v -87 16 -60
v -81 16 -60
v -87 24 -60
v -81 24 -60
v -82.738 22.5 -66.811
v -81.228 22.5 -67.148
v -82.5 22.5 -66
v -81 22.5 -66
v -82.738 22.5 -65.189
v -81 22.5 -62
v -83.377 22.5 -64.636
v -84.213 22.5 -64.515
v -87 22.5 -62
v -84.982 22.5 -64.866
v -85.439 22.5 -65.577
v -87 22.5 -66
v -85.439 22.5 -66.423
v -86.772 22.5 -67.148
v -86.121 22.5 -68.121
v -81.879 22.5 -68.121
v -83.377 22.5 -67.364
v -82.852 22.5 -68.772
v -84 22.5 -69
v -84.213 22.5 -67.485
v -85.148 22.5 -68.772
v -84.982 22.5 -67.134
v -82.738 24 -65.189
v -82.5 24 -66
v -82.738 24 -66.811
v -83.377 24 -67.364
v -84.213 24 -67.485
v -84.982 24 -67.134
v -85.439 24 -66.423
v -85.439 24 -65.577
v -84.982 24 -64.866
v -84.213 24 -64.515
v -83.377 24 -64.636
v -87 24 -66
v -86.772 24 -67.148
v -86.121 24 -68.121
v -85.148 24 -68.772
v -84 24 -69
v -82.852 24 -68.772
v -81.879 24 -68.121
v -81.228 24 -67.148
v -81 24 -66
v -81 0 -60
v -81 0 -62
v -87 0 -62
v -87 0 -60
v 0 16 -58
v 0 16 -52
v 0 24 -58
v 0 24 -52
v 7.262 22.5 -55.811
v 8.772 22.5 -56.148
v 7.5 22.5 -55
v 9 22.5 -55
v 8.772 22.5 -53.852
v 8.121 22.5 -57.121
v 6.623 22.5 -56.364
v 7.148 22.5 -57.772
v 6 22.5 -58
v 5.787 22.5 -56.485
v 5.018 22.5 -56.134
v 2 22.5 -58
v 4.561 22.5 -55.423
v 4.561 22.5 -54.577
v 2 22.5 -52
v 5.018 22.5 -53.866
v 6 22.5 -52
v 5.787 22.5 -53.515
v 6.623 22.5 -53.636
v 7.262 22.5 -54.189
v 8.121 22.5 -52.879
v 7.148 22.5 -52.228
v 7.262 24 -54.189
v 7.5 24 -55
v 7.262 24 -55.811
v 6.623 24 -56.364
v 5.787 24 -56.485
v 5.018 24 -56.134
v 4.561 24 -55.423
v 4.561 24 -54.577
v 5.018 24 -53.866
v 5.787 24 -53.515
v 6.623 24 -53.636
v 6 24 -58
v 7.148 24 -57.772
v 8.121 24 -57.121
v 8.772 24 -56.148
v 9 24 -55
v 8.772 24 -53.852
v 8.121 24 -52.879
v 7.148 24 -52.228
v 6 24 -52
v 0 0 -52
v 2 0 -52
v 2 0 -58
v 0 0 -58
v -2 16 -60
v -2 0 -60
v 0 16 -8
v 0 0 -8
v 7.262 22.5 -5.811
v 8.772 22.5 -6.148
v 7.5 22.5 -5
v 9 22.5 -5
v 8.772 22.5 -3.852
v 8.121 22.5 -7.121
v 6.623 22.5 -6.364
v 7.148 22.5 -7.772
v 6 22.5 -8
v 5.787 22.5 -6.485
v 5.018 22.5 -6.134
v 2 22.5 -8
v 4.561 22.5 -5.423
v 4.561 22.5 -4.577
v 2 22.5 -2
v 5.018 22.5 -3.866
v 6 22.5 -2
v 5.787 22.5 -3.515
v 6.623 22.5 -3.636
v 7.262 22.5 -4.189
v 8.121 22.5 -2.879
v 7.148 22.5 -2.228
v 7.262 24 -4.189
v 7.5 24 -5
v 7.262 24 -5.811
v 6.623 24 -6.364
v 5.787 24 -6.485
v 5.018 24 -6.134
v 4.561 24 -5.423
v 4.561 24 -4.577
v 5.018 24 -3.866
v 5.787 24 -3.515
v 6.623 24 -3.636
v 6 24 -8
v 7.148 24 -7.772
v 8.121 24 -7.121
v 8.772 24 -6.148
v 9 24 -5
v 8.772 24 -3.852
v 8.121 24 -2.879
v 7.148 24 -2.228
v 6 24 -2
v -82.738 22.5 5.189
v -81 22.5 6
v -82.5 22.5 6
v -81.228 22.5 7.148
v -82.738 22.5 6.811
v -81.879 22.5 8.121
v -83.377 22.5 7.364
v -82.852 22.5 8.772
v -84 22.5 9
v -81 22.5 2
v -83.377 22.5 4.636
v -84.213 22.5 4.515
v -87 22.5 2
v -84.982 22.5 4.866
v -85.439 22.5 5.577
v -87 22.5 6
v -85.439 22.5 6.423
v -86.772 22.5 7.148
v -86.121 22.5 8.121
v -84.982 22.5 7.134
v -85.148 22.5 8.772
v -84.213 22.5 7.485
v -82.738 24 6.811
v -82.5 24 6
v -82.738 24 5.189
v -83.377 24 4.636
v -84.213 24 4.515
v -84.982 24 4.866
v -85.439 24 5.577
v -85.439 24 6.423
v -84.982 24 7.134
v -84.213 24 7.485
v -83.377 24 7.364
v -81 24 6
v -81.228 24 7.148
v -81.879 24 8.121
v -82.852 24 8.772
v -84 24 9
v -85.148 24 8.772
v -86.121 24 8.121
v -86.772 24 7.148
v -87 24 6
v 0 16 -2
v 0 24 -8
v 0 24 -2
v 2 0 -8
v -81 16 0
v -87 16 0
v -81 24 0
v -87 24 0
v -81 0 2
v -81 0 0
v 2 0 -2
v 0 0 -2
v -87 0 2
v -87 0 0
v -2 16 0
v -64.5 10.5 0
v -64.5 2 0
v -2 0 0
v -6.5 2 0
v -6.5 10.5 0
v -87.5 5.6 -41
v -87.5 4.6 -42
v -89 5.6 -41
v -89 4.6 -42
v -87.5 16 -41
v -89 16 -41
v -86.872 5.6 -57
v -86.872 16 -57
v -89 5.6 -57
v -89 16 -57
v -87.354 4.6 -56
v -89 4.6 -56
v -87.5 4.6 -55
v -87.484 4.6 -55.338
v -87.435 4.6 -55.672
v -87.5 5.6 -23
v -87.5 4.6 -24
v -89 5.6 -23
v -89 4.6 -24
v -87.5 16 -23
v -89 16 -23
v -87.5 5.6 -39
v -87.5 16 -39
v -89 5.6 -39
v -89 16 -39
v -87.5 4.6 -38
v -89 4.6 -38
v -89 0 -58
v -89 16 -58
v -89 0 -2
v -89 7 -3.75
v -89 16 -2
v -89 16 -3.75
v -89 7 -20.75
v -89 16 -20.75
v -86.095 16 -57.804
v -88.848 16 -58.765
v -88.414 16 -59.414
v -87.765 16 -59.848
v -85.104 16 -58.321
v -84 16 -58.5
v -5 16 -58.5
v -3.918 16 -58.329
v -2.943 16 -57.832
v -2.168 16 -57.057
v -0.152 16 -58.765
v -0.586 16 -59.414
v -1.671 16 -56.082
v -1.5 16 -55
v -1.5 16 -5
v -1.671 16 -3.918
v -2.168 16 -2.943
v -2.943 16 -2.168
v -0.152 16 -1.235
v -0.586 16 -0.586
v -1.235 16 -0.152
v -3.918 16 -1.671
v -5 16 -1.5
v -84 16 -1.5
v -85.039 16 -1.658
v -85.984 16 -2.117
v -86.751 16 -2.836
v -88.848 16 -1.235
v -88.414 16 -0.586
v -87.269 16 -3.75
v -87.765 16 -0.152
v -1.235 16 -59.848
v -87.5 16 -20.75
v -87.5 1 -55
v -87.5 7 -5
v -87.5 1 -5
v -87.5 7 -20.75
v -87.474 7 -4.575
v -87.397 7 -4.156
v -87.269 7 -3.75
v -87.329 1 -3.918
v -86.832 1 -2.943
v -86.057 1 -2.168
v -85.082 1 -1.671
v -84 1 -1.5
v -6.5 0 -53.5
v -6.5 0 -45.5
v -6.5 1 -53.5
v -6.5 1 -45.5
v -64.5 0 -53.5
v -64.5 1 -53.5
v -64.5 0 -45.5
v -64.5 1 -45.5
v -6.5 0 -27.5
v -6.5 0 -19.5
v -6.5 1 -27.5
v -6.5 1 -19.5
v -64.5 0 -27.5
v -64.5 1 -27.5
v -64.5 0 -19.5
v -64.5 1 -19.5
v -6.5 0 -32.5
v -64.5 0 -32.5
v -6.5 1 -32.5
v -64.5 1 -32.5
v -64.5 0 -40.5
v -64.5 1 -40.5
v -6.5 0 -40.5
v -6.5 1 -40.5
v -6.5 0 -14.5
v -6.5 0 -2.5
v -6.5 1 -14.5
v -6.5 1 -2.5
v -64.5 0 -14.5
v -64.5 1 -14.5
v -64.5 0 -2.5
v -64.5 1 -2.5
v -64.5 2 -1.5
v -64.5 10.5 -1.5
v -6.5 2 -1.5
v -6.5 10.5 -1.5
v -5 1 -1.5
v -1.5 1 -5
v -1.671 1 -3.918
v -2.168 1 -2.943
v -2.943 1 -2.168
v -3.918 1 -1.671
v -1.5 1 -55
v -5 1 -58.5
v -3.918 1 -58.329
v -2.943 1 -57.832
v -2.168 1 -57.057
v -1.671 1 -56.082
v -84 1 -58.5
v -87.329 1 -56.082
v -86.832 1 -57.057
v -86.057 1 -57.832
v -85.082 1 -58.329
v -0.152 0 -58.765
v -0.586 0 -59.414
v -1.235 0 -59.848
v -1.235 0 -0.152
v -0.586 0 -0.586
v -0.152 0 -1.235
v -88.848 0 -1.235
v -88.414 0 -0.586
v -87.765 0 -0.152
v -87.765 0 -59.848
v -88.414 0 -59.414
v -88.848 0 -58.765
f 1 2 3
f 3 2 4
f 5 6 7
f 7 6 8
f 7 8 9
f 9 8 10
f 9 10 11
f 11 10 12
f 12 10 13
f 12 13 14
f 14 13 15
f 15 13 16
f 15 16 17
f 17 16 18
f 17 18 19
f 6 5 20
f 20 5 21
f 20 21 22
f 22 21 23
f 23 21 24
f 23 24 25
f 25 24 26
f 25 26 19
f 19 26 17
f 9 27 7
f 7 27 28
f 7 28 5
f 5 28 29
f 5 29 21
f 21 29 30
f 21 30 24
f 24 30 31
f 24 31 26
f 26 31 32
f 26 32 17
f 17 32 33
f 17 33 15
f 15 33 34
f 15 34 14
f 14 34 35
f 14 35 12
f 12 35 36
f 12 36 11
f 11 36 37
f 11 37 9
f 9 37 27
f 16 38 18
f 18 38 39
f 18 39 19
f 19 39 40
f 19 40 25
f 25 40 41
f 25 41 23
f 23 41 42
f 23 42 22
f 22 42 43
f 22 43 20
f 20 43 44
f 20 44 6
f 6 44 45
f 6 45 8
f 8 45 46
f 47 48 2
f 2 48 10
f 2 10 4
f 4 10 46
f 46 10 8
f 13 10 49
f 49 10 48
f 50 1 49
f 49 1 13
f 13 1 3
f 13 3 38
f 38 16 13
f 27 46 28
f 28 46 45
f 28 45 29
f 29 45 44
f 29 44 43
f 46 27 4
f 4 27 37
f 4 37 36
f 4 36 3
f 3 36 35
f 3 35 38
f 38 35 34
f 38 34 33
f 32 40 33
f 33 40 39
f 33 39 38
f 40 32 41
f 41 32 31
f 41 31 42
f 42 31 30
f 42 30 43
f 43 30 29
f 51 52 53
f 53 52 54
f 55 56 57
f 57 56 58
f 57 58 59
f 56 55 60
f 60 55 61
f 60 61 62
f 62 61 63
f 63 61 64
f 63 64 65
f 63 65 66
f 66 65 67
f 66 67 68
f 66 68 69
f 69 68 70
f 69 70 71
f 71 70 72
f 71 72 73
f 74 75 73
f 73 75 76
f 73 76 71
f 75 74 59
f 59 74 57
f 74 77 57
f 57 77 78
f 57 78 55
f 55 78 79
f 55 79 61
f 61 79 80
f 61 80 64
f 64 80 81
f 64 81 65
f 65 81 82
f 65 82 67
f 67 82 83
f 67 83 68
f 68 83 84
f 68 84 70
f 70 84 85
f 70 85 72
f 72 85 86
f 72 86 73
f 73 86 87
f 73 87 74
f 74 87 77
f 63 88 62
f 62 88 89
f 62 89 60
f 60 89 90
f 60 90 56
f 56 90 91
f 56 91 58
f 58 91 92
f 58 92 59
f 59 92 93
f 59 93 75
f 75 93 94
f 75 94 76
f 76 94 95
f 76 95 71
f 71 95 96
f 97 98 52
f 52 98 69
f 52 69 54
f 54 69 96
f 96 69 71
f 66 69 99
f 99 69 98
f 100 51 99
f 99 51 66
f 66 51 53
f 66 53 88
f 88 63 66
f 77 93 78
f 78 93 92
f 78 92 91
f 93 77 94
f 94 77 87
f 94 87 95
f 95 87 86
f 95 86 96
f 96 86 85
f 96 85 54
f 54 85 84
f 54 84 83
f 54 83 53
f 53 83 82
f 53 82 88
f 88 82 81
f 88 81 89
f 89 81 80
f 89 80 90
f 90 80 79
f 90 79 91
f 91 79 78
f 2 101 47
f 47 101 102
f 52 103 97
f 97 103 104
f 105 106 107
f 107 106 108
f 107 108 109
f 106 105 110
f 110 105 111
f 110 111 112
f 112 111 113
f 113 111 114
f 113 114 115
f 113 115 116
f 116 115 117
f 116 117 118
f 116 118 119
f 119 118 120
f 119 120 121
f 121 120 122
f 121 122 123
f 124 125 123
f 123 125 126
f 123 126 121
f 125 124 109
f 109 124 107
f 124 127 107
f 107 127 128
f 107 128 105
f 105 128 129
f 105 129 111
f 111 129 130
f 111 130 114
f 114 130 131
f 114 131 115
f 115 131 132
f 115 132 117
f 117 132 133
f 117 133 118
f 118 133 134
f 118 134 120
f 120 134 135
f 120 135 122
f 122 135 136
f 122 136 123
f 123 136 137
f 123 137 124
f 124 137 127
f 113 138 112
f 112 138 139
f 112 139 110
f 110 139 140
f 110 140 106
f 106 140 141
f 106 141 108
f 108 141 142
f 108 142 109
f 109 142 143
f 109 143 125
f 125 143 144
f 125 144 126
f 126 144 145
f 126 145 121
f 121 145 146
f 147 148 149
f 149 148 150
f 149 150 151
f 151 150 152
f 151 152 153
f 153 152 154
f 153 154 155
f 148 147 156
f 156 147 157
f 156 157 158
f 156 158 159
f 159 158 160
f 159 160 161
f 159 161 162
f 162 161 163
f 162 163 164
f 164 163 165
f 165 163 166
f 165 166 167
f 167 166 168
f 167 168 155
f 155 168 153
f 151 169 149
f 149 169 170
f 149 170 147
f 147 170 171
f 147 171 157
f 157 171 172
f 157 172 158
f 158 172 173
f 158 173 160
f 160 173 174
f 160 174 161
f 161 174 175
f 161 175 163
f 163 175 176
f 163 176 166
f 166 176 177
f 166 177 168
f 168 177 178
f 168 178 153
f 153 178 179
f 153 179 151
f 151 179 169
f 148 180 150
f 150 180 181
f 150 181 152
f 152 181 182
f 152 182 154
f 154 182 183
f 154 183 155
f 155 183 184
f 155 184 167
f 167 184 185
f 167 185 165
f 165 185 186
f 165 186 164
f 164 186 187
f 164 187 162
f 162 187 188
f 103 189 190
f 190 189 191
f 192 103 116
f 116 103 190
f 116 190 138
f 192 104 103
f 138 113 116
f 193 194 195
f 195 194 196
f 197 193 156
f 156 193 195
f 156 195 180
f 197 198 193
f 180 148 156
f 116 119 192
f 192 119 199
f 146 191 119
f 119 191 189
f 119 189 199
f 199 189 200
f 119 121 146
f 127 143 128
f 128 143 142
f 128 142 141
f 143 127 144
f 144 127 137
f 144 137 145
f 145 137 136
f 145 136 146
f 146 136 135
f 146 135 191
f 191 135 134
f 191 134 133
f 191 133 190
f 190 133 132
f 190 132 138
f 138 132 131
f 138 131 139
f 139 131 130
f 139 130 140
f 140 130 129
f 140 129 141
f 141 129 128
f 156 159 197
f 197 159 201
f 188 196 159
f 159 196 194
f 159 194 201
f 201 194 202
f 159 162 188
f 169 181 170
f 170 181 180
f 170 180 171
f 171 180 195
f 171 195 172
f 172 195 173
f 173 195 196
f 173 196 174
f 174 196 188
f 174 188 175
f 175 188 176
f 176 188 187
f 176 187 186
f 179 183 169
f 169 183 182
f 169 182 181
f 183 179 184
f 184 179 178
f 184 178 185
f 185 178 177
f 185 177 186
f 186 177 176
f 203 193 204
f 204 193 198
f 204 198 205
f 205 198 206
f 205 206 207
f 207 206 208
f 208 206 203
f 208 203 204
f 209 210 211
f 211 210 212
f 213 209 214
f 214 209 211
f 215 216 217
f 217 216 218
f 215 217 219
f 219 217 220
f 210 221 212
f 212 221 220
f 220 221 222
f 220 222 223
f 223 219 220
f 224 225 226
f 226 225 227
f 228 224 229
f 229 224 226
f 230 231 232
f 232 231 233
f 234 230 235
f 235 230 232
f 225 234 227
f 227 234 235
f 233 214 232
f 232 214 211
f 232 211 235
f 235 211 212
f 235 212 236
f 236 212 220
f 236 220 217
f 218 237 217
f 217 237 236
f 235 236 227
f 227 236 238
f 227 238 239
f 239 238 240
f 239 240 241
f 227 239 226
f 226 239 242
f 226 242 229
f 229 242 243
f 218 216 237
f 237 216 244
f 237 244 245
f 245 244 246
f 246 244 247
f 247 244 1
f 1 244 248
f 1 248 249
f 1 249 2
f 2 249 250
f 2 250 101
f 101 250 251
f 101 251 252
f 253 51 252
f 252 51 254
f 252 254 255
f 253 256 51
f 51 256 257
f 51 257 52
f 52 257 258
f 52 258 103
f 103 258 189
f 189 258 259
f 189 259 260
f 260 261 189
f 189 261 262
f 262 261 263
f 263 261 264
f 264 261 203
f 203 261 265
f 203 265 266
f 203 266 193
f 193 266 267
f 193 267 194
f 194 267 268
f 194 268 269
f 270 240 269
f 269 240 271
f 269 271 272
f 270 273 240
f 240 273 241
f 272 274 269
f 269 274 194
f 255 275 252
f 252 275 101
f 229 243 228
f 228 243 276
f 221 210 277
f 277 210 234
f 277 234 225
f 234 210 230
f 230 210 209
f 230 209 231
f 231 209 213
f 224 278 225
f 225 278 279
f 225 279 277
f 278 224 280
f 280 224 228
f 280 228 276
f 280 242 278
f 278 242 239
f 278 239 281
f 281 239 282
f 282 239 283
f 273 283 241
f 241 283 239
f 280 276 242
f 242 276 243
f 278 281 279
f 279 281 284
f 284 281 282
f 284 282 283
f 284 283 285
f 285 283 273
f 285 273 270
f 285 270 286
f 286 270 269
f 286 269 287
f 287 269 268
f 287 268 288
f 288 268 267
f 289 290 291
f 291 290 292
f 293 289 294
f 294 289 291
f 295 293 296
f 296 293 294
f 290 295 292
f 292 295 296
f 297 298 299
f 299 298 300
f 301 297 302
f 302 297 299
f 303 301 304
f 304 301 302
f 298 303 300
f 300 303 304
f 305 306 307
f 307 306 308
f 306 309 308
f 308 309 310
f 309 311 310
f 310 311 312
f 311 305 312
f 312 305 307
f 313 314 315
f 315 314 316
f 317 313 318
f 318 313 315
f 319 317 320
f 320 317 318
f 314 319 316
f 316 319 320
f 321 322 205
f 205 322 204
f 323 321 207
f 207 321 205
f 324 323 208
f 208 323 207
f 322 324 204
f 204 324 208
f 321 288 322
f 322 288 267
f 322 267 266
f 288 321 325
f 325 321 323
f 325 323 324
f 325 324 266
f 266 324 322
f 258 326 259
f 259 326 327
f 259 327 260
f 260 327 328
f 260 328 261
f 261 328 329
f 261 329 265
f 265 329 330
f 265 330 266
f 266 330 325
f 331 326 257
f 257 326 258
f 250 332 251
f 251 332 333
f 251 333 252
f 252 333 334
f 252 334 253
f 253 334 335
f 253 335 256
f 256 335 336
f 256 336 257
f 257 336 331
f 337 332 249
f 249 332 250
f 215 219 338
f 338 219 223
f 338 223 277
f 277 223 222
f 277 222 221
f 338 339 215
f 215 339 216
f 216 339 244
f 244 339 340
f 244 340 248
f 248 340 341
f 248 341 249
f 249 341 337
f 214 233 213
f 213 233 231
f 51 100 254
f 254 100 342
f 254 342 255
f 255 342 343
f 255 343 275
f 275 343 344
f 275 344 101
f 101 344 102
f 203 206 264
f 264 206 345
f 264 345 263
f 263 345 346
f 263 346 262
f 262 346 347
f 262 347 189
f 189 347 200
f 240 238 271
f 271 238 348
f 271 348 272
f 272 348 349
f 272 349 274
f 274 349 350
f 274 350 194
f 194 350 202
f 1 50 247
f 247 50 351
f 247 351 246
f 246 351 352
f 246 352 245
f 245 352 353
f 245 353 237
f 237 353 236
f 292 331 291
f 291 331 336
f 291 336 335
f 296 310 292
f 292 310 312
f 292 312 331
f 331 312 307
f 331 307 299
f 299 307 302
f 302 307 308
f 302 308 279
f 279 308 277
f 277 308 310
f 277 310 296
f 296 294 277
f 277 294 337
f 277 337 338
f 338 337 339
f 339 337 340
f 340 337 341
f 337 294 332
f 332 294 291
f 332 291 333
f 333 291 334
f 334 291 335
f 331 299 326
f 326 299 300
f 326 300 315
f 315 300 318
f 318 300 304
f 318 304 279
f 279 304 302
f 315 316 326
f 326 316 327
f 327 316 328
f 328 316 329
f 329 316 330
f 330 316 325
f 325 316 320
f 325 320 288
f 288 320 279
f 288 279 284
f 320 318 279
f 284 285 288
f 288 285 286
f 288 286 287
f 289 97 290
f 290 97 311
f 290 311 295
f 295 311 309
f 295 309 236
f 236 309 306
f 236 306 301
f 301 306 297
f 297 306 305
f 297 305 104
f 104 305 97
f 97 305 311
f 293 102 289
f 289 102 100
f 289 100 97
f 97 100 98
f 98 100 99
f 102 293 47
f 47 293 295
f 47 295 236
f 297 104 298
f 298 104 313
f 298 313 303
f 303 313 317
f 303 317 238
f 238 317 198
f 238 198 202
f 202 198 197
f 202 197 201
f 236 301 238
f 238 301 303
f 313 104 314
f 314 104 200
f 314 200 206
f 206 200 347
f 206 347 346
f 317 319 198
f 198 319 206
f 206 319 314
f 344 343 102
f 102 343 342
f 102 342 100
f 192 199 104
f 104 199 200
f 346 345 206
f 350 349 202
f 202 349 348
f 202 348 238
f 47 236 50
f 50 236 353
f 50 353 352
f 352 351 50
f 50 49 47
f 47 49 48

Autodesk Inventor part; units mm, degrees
ref_plane "YZ Plane" through (0, 0, 0) normal (1, 0, 0) x (0, 1, 0)
ref_plane "XZ Plane" through (0, 0, 0) normal (0, 1, 0) x (-1, 0, 0)
sketch "Sketch1" plane through (0, 0, 0) normal (0, 1, 0) x (-1, 0, 0)
  line L0 (2, 0) -> (87, 0)
  line L1 (89, -2) -> (89, -58)
  line L2 (87, -60) -> (2, -60)
  line L3 (0, -58) -> (0, -2)
  arc A0 (2, 0) -> (0, -2) centre (2, -2) ccw
  arc A1 (0, -58) -> (2, -60) centre (2, -58) ccw
  arc A2 (87, -60) -> (89, -58) centre (87, -58) ccw
  arc A3 (89, -2) -> (87, 0) centre (87, -2) ccw
  point P0 (0, 0)
  point P1 (89, -60)
  point P2 (0, -60)
  dimension "d0" = 60
  dimension "d1" = 89
  dimension "d2" = 2
extrude "Extrusion1" add sketch "Sketch1" along normal blind 1
sketch "Sketch2" plane through (0, 1, 0) normal (0, 1, 0) x (1, 0, 0)
  line L0 (-87, 0) -> (-2, 0)
  line L1 (0, 2) -> (0, 58)
  line L2 (-2, 60) -> (-87, 60)
  line L3 (-89, 58) -> (-89, 2)
  line L4 (-89, 58) -> (-89, 2) projected
  line L5 (-87, 0) -> (-2, 0) projected
  line L6 (0, 2) -> (0, 58) projected
  line L7 (-2, 60) -> (-87, 60) projected
  arc A0 (-89, 2) -> (-87, 0) centre (-87, 2) ccw
  arc A1 (-87, 60) -> (-89, 58) centre (-87, 58) ccw
  arc A2 (0, 58) -> (-2, 60) centre (-2, 58) ccw
  arc A3 (-2, 0) -> (0, 2) centre (-2, 2) ccw
  line L8 (-84, 1.5) -> (-5, 1.5)
  line L9 (-1.5, 5) -> (-1.5, 55)
  line L10 (-5, 58.5) -> (-84, 58.5)
  line L11 (-87.5, 55) -> (-87.5, 5)
  arc A4 (-5, 1.5) -> (-1.5, 5) centre (-5, 5) ccw
  arc A5 (-1.5, 55) -> (-5, 58.5) centre (-5, 55) ccw
  arc A6 (-84, 58.5) -> (-87.5, 55) centre (-84, 55) ccw
  arc A7 (-87.5, 5) -> (-84, 1.5) centre (-84, 5) ccw
  point P0 (0, 0)
  dimension "d5" = 2
  dimension "d6" = 1.5
  dimension "d7" = 1.5
  dimension "d8" = 1.5
  dimension "d9" = 1.5
  dimension "d10" = 3.5
extrude "Extrusion2" add sketch "Sketch2" along normal blind 15
sketch "Sketch3" plane through (-87, 0, 0) normal (0, 0, 1) x (1, 0, 0)
  line L0 (22.5, 10.5) -> (80.5, 10.5)
  line L1 (80.5, 10.5) -> (80.5, 2)
  line L2 (80.5, 2) -> (22.5, 2)
  line L3 (22.5, 2) -> (22.5, 10.5)
  line L4 (87, 0) -> (87, 16) projected
  line L5 (0, 0) -> (85, 0) projected
  dimension "d13" = 58
  dimension "d14" = 8.5
  dimension "d15" = 6.5
  dimension "d16" = 2
extrude "Extrusion3" cut sketch "Sketch3" against normal up to surface (1.5 mm away)
sketch "Sketch4" plane through (0, 1, 0) normal (0, 1, 0) x (1, 0, 0)
  line L0 (-64.5, 1.5) -> (-6.5, 1.5) projected
  line L1 (-64.5, 2.5) -> (-6.5, 2.5)
  line L2 (-6.5, 2.5) -> (-6.5, 14.5)
  line L3 (-6.5, 14.5) -> (-64.5, 14.5)
  line L4 (-64.5, 14.5) -> (-64.5, 2.5)
  line L5 (-6.5, 1.5) -> (-6.5, 2.5) construction
  point P0 (0, 0)
  dimension "d19" = 12
  dimension "d20" = 58
  dimension "d21" = 1
extrude "Extrusion4" cut sketch "Sketch4" against normal up to surface (1 mm away)
sketch "Sketch5" plane through (0, 1, 0) normal (0, 1, 0) x (1, 0, 0)
  line L0 (-64.5, 19.5) -> (-6.5, 19.5)
  line L1 (-6.5, 19.5) -> (-6.5, 27.5)
  line L2 (-6.5, 27.5) -> (-64.5, 27.5)
  line L3 (-64.5, 27.5) -> (-64.5, 19.5)
  line L4 (-64.5, 2.5) -> (-64.5, 14.5) projected
  line L5 (-64.5, 14.5) -> (-6.5, 14.5) projected
  line L6 (-64.5, 32.5) -> (-6.5, 32.5)
  line L7 (-6.5, 32.5) -> (-6.5, 40.5)
  line L8 (-6.5, 40.5) -> (-64.5, 40.5)
  line L9 (-64.5, 40.5) -> (-64.5, 32.5)
  line L10 (-64.5, 45.5) -> (-6.5, 45.5)
  line L11 (-6.5, 45.5) -> (-6.5, 53.5)
  line L12 (-6.5, 53.5) -> (-64.5, 53.5)
  line L13 (-64.5, 53.5) -> (-64.5, 45.5)
  point P0 (0, 0)
  dimension "d24" = 8
  dimension "d25" = 58
  dimension "d26" = 5
  dimension "d27" = 5
  dimension "d28" = 8
  dimension "d29" = 58
  dimension "d30" = 5
  dimension "d31" = 8
extrude "Extrusion5" cut sketch "Sketch5" against normal up to surface (1 mm away)
sketch "Sketch6" plane through (-89, 0, -58) normal (-1, 0, 0) x (0, 0, 1)
  line L0 (54.25, 7) -> (37.25, 7)
  line L1 (37.25, 7) -> (37.25, 16)
  line L2 (37.25, 16) -> (54.25, 16)
  line L3 (54.25, 16) -> (54.25, 7)
  line L4 (0, 0) -> (56, 0) projected
  line L5 (0, 16) -> (56, 16) projected
  line L6 (58, 0) -> (58, 16) projected
  dimension "d34" = 7
  dimension "d35" = 3.75
  dimension "d36" = 17
extrude "Extrusion6" cut sketch "Sketch6" against normal blind 2
sketch "Sketch7" plane through (-89, 0, -58) normal (-1, 0, 0) x (0, 0, 1)
  line L0 (35, 16) -> (19, 16)
  line L1 (19, 16) -> (19, 5.6)
  line L2 (19, 5.6) -> (20, 4.6)
  line L3 (20, 4.6) -> (34, 4.6)
  line L4 (34, 4.6) -> (35, 5.6)
  line L5 (35, 5.6) -> (35, 16)
  line L6 (37.25, 7) -> (37.25, 16) projected
  line L7 (0, 16) -> (37.25, 16) projected
  line L8 (0, 0) -> (56, 0) projected
  line L9 (2, 4.6) -> (16, 4.6)
  line L10 (16, 4.6) -> (17, 5.6)
  line L11 (17, 5.6) -> (17, 16)
  line L12 (17, 16) -> (1, 16)
  line L13 (1, 16) -> (1, 5.6)
  line L14 (1, 5.6) -> (2, 4.6)
  point P0 (58, 0)
  point P1 (17, 16)
  point P2 (1, 16)
  dimension "d39" = 2.25
  dimension "d40" = 14
  dimension "d41" = 16
  dimension "d42" = 4.6
  dimension "d45" = 18
extrude "Extrusion7" cut sketch "Sketch7" against normal blind 2.5
sketch "Sketch8" plane through (0, 0, 0) normal (0, -1, 0) x (1, 0, 0)
  line L0 (0, -2) -> (0, -58) projected
  line L1 (0, -2) -> (2, -2)
  line L2 (2, -2) -> (2, -8)
  line L3 (2, -8) -> (0, -8)
  line L4 (0, -8) -> (0, -2)
  line L5 (-87, 0) -> (-2, 0) projected
  line L6 (-87, 0) -> (-81, 0)
  line L7 (-81, 0) -> (-81, 2)
  line L8 (-81, 2) -> (-87, 2)
  line L9 (-87, 2) -> (-87, 0)
  point P0 (0, 0)
  dimension "d52" = 6
  dimension "d53" = 2
  dimension "d54" = 6
  dimension "d55" = 2
extrude "Extrusion8" add sketch "Sketch8" against normal blind 24
sketch "Sketch9" plane through (0, 24, 0) normal (0, 1, 0) x (1, 0, 0)
  arc A0 (-89, 2) -> (-87, 0) centre (-87, 2) ccw projected
  line L0 (-87, 0) -> (-81, 0)
  line L1 (-81, 0) -> (-81, -6)
  line L2 (-81, -6) -> (-87, -6)
  line L3 (-87, -6) -> (-87, 0)
  circle A1 centre (-84, -6) radius 3
  circle A2 centre (-84, -6) radius 1.5
  line L4 (2, 8) -> (0, 8) projected
  line L5 (0, 8) -> (6, 8)
  line L6 (6, 8) -> (6, 2)
  line L7 (6, 2) -> (0, 2)
  line L8 (0, 2) -> (0, 8)
  circle A3 centre (6, 5) radius 3
  circle A4 centre (6, 5) radius 1.5
  point P0 (0, 0)
  point P1 (6, 2)
  dimension "d58" = 6
  dimension "d59" = 6
  dimension "d60" = 3
  dimension "d61" = 6
  dimension "d62" = 6
  dimension "d63" = 3
extrude "Extrusion9" add sketch "Sketch9" against normal blind 1.5 contours L0 L1 A1 L3 | A1 L2 A2 | L2 A2 A1 | L5 A3 L7 L8 L4 | A3 L6 A4 | L6 A4 A3
ref_plane "Work Plane1" through (-2, 0, -30) normal (0, 0, 1) x (1, 0, 0)
mirror "Mirror1" about plane through (-2, 0, -30) normal (0, 0, 1) of "Extrusion9", "Extrusion8"
properties part number "raspi_cover"
